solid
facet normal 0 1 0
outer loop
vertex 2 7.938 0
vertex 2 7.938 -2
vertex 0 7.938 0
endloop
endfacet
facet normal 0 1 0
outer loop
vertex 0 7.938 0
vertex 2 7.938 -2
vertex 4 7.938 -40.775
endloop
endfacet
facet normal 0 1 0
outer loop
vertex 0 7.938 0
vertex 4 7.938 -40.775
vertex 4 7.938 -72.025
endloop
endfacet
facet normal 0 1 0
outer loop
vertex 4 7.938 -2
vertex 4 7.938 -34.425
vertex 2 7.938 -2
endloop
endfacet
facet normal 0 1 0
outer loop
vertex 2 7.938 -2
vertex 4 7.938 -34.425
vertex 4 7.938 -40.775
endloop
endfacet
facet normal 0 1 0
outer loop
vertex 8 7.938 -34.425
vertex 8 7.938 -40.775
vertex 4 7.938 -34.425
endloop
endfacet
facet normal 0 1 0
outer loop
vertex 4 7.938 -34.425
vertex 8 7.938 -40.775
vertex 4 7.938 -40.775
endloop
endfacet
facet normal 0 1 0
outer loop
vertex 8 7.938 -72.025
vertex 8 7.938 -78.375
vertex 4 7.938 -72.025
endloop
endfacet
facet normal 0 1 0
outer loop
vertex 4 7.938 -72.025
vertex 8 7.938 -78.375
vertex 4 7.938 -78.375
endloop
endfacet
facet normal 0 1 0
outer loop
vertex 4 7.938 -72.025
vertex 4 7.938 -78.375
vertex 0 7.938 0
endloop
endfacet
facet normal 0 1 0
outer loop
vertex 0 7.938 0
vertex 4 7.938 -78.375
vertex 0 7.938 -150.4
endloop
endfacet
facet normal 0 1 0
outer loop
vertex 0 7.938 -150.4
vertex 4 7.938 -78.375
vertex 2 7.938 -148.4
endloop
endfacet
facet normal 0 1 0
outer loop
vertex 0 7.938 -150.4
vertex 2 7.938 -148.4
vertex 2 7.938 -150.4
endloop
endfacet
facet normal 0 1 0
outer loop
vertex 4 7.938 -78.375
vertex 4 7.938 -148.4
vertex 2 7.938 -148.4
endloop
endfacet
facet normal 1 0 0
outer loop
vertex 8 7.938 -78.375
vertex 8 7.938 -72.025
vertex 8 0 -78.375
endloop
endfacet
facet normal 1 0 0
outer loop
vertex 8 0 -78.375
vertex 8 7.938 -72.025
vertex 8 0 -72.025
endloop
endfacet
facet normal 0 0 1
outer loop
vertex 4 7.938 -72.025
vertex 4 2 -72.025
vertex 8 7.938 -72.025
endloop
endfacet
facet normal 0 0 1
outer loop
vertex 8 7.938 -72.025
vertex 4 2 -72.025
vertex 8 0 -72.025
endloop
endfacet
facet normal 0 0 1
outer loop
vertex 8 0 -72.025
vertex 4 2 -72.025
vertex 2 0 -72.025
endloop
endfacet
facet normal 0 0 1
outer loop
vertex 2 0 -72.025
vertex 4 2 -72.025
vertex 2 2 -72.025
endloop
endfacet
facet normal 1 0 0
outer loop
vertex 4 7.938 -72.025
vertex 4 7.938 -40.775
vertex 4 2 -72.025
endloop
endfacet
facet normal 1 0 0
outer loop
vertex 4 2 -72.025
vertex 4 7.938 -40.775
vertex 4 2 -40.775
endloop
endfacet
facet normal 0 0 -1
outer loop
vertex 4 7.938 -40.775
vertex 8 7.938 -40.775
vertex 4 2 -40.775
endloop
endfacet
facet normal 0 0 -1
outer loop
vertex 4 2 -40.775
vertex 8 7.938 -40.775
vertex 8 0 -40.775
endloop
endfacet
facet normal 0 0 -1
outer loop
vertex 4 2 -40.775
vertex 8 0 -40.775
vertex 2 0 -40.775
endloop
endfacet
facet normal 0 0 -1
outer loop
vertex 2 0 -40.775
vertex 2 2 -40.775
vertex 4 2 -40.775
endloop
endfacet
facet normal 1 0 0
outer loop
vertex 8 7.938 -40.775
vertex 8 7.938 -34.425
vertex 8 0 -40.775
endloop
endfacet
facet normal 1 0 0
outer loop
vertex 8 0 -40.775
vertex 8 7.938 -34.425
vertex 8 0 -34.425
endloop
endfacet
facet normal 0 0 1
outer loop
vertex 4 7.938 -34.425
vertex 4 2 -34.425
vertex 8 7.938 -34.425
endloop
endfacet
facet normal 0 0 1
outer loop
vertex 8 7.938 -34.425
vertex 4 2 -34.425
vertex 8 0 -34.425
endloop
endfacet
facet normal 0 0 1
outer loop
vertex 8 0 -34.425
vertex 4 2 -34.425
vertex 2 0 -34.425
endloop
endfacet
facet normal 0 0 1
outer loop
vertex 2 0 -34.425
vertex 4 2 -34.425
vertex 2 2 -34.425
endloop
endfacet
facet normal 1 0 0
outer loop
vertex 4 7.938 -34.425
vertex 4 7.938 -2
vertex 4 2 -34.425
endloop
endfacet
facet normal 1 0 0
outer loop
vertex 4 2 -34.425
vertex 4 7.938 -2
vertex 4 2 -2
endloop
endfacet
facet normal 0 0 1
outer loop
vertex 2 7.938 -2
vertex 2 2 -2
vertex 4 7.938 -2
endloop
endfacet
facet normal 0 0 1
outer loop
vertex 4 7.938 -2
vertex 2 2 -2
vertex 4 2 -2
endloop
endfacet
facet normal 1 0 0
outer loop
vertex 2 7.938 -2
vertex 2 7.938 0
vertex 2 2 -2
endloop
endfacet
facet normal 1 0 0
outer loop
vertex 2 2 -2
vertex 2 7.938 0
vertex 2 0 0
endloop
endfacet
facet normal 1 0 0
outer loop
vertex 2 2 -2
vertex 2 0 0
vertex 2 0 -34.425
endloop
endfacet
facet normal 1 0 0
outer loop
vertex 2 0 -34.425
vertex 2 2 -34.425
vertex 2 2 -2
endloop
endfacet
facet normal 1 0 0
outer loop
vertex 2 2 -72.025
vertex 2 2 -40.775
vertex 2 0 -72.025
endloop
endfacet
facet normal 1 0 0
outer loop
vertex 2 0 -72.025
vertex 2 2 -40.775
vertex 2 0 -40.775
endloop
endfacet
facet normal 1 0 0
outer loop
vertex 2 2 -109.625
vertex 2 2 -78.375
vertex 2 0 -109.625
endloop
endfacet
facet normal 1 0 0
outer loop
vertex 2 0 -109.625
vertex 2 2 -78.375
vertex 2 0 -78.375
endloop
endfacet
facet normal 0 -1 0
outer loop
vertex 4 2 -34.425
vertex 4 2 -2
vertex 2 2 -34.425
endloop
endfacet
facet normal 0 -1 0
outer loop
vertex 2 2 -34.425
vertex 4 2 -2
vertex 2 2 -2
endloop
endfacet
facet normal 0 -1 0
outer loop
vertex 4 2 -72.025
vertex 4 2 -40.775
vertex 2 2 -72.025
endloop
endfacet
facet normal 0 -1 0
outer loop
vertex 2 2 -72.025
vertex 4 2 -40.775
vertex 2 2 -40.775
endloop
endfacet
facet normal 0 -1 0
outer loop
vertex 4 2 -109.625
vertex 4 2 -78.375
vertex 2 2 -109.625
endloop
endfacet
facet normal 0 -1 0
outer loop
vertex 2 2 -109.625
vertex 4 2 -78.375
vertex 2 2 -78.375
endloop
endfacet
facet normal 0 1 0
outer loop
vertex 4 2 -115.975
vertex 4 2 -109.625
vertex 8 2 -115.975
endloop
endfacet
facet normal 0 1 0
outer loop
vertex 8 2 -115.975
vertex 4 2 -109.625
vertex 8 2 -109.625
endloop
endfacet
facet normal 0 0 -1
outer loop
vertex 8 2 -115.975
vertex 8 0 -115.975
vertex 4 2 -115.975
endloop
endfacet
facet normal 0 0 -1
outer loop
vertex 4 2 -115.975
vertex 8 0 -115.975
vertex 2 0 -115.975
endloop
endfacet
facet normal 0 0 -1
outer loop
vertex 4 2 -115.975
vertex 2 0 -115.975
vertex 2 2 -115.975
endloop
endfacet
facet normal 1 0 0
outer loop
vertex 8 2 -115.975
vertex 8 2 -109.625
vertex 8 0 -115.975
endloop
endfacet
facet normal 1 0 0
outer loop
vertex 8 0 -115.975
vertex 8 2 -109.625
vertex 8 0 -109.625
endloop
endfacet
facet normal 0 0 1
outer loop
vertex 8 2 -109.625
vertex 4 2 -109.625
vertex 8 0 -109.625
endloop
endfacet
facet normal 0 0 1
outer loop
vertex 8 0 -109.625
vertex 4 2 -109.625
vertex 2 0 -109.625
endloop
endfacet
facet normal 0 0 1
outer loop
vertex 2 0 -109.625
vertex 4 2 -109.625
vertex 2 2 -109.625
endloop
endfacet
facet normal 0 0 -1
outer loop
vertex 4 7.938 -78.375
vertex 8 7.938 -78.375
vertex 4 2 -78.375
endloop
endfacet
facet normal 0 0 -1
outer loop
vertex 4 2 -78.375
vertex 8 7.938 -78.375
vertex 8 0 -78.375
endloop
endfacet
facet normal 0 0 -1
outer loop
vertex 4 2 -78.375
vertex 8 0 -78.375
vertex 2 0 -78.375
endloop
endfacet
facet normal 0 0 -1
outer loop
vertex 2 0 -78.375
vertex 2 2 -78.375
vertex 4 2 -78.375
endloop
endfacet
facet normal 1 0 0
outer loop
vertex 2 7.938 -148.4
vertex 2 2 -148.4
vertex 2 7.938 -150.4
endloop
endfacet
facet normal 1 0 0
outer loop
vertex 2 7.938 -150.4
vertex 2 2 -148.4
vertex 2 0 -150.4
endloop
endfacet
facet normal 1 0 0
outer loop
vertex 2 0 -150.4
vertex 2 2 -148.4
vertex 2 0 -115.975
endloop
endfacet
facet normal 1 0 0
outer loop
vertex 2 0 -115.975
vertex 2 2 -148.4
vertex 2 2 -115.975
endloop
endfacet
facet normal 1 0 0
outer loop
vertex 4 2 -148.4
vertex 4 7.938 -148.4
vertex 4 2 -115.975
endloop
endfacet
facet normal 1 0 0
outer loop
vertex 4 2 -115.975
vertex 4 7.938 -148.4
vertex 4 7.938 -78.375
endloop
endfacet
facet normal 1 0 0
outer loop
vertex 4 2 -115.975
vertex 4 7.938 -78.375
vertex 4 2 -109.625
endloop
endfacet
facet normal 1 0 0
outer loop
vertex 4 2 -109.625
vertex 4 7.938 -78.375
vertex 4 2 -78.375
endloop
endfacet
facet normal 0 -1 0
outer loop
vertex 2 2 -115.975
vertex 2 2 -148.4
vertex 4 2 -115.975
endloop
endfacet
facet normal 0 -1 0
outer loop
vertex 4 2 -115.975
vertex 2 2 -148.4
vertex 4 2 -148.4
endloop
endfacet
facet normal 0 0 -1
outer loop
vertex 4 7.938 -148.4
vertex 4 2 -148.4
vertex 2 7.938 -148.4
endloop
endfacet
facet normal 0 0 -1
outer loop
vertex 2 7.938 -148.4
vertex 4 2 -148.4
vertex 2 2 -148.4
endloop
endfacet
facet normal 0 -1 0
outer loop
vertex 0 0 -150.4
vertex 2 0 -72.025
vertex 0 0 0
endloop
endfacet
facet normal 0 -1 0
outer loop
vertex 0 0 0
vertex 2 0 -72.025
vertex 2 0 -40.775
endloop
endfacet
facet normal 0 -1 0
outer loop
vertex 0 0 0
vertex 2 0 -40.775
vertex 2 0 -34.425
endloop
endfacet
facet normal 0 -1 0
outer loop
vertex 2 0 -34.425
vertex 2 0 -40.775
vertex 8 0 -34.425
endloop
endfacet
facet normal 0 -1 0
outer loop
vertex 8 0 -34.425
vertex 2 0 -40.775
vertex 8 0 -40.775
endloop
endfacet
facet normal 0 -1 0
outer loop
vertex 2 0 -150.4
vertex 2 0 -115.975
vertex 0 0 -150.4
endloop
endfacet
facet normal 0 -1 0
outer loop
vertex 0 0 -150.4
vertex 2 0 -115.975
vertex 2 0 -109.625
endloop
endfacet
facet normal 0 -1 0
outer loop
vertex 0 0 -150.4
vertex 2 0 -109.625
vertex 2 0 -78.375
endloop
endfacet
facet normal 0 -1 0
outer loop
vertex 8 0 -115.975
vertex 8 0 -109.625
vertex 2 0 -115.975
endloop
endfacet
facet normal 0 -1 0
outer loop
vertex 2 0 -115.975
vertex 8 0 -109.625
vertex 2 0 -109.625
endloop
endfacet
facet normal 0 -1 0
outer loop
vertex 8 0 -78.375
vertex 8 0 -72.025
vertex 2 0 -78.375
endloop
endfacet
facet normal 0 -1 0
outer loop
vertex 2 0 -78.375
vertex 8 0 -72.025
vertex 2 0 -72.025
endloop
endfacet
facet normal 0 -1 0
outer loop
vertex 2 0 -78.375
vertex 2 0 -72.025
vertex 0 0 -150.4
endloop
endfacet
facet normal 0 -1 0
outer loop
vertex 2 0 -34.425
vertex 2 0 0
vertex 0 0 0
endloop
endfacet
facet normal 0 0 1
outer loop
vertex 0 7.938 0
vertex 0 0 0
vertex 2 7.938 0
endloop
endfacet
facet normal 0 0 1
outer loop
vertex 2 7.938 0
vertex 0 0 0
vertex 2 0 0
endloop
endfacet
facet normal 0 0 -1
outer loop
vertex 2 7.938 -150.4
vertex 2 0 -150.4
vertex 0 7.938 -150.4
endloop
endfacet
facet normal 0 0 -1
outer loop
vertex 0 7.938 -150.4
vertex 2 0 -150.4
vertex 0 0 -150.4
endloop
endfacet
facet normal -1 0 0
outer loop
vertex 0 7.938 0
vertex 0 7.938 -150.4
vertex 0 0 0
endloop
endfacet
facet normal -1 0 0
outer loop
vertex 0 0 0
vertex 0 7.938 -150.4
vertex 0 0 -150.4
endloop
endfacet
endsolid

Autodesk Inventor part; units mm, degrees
ref_plane "YZ Plane" through (0, 0, 0) normal (1, 0, 0) x (0, 1, 0)
ref_plane "XZ Plane" through (0, 0, 0) normal (0, 1, 0) x (-1, 0, 0)
ref_plane "XY Plane" through (0, 0, 0) normal (0, 0, 1) x (1, 0, 0)
sketch "Sketch1" plane through (0, 0, 0) normal (1, 0, 0) x (0, 1, 0)
  line L0 (0, 0) -> (69.85, 0)
  line L1 (69.85, 0) -> (69.85, -150.4)
  line L2 (69.85, -150.4) -> (0, -150.4)
  line L3 (0, -150.4) -> (0, 0)
  dimension "d0" = 69.85
  dimension "d1" = 150.4
extrude "Extrusion1" add sketch "Sketch1" along normal blind 2
sketch "Sketch2" plane through (2, 0, 0) normal (1, 0, 0) x (0, 0, -1)
  line L0 (150.4, 0) -> (150.4, 69.85) projected
  line L1 (150.4, 69.85) -> (0, 69.85) projected
  line L2 (0, 69.85) -> (0, 0) projected
  line L3 (0, 0) -> (150.4, 0) projected
  line L4 (150.4, 69.85) -> (148.4, 69.85)
  line L5 (148.4, 69.85) -> (148.4, 0)
  line L6 (148.4, 0) -> (150.4, 0)
  line L7 (150.4, 0) -> (150.4, 69.85)
  line L8 (0, 69.85) -> (2, 69.85)
  line L9 (2, 69.85) -> (2, 0)
  line L10 (2, 0) -> (0, 0)
  line L11 (0, 0) -> (0, 69.85)
  line L12 (0, 0) -> (150.4, 0)
  line L13 (150.4, 0) -> (150.4, 2)
  line L14 (150.4, 2) -> (0, 2)
  line L15 (0, 2) -> (0, 0)
  point P0 (2, 2)
  point P1 (148.4, 2)
  dimension "d4" = 2
  dimension "d5" = 2
  dimension "d6" = 2
extrude "Extrusion2" add sketch "Sketch2" along normal blind 2 contours L14 L9 L1 L5
sketch "Sketch3" plane through (4, 0, 0) normal (1, 0, 0) x (0, 0, -1)
  line L0 (150.4, 0) -> (150.4, 69.85) projected
  line L1 (0, 0) -> (150.4, 0) projected
  line L2 (0, 69.85) -> (0, 0) projected
  line L3 (150.4, 69.85) -> (0, 69.85) projected
  line L4 (0, 69.85) -> (75.2, 69.85) construction
  line L5 (75.2, 69.85) -> (75.2, 0) construction
  line L6 (75.2, 0) -> (0, 0) construction
  line L7 (0, 0) -> (0, 69.85) construction
  line L8 (0, 0) -> (150.4, 0) construction
  line L9 (0, 0) -> (37.6, 0) construction
  line L10 (37.6, 0) -> (37.6, 69.85) construction
  line L11 (37.6, 69.85) -> (0, 69.85) construction
  line L12 (0, 69.85) -> (0, 0) construction
  line L13 (150.4, 0) -> (150.4, 69.85) construction
  line L14 (75.2, 69.85) -> (150.4, 69.85) construction
  line L15 (150.4, 69.85) -> (150.4, 0) construction
  line L16 (150.4, 0) -> (75.2, 0) construction
  line L17 (75.2, 0) -> (75.2, 69.85) construction
  line L18 (75.2, 0) -> (112.8, 0) construction
  line L19 (112.8, 0) -> (112.8, 69.85) construction
  line L20 (112.8, 69.85) -> (75.2, 69.85) construction
  line L21 (75.2, 69.85) -> (75.2, 0) construction
  line L22 (34.425, 0) -> (34.425, 69.85) construction
  line L23 (34.425, 69.85) -> (40.775, 69.85) construction
  line L24 (40.775, 69.85) -> (40.775, 0) construction
  line L25 (40.775, 0) -> (34.425, 0) construction
  line L26 (34.425, 0) -> (40.775, 69.85) construction
  line L27 (34.425, 69.85) -> (40.775, 0) construction
  line L28 (72.025, 0) -> (72.025, 69.85) construction
  line L29 (72.025, 69.85) -> (78.375, 69.85) construction
  line L30 (78.375, 69.85) -> (78.375, 0) construction
  line L31 (78.375, 0) -> (72.025, 0) construction
  line L32 (72.025, 0) -> (78.375, 69.85) construction
  line L33 (72.025, 69.85) -> (78.375, 0) construction
  line L34 (109.625, 0) -> (109.625, 69.85) construction
  line L35 (109.625, 69.85) -> (115.975, 69.85) construction
  line L36 (115.975, 69.85) -> (115.975, 0) construction
  line L37 (115.975, 0) -> (109.625, 0) construction
  line L38 (109.625, 0) -> (115.975, 69.85) construction
  line L39 (109.625, 69.85) -> (115.975, 0) construction
  line L40 (34.425, 69.85) -> (40.775, 69.85)
  line L41 (40.775, 69.85) -> (40.775, 0)
  line L42 (40.775, 0) -> (34.425, 0)
  line L43 (34.425, 0) -> (34.425, 69.85)
  line L44 (72.025, 0) -> (78.375, 0)
  line L45 (78.375, 0) -> (78.375, 69.85)
  line L46 (78.375, 69.85) -> (72.025, 69.85)
  line L47 (72.025, 69.85) -> (72.025, 0)
  line L48 (109.625, 69.85) -> (115.975, 69.85)
  line L49 (115.975, 69.85) -> (115.975, 0)
  line L50 (115.975, 0) -> (109.625, 0)
  line L51 (109.625, 0) -> (109.625, 69.85)
  point P0 (37.6, 34.925)
  point P1 (75.2, 34.925)
  point P2 (112.8, 34.925)
  dimension "d9" = 6.35
  dimension "d10" = 6.35
  dimension "d11" = 6.35
extrude "Extrusion3" add sketch "Sketch3" along normal blind 4 contours L1 L51 L3 L49 | L1 L47 L3 L45 | L1 L43 L3 L41
sketch "Sketch4" plane through (0, 69.85, 0) normal (0, 1, 0) x (1, 0, 0)
  line L0 (0, 150.4) -> (0, 0) projected
  line L1 (0, 150.4) -> (0, 0) construction
  line L2 (0, 0) -> (2, 0) construction
  line L3 (2, 2) -> (2, 0) construction
  line L4 (2, 2) -> (4, 2) construction
  line L5 (4, 34.425) -> (4, 2) construction
  line L6 (4, 34.425) -> (8, 34.425) construction
  line L7 (8, 40.775) -> (8, 34.425) construction
  line L8 (4, 40.775) -> (8, 40.775) construction
  line L9 (4, 72.025) -> (4, 40.775) construction
  line L10 (4, 72.025) -> (8, 72.025) construction
  line L11 (8, 78.375) -> (8, 72.025) construction
  line L12 (4, 78.375) -> (8, 78.375) construction
  line L13 (4, 109.625) -> (4, 78.375) construction
  line L14 (4, 109.625) -> (8, 109.625) construction
  line L15 (8, 115.975) -> (8, 109.625) construction
  line L16 (4, 115.975) -> (8, 115.975) construction
  line L17 (4, 148.4) -> (4, 115.975) construction
  line L18 (2, 148.4) -> (4, 148.4) construction
  line L19 (2, 150.4) -> (2, 148.4) construction
  line L20 (0, 150.4) -> (2, 150.4) construction
  line L21 (2, 0) -> (0, 0)
  line L22 (0, 0) -> (0, 150.4)
  line L23 (0, 150.4) -> (2, 150.4)
  line L24 (2, 150.4) -> (2, 0)
  line L25 (2, 0) -> (8, 0)
  line L26 (8, 0) -> (8, 150.4)
  line L27 (8, 150.4) -> (2, 150.4)
  line L28 (2, 150.4) -> (2, 0)
extrude "Extrusion4" cut sketch "Sketch4" against normal blind 2 contours L27 L26 L25 L24
sketch "Sketch5" plane through (0, 67.85, 0) normal (0, 1, 0) x (1, 0, 0)
  line L0 (4, 115.975) -> (8, 115.975) projected
  line L1 (4, 148.4) -> (4, 115.975) projected
  line L2 (2, 148.4) -> (4, 148.4) projected
  line L3 (2, 2) -> (2, 148.4) projected
  line L4 (4, 2) -> (2, 2) projected
  line L5 (4, 34.425) -> (4, 2) projected
  line L6 (8, 34.425) -> (4, 34.425) projected
  line L7 (8, 40.775) -> (8, 34.425) projected
  line L8 (4, 40.775) -> (8, 40.775) projected
  line L9 (4, 72.025) -> (4, 40.775) projected
  line L10 (8, 72.025) -> (4, 72.025) projected
  line L11 (8, 78.375) -> (8, 72.025) projected
  line L12 (4, 78.375) -> (8, 78.375) projected
  line L13 (4, 109.625) -> (4, 78.375) projected
  line L14 (8, 109.625) -> (4, 109.625) projected
  line L15 (8, 115.975) -> (8, 109.625) projected
  line L16 (2, 2) -> (4, 2) projected
  line L17 (2, 2) -> (8, 2)
  line L18 (8, 2) -> (8, 148.4)
  line L19 (8, 148.4) -> (2, 148.4)
  line L20 (2, 148.4) -> (2, 2)
  point P0 (0, 0)
  point P1 (4, 2)
extrude "Extrusion5" add sketch "Sketch5" against normal blind 2 contours L1 L19 L18 L0 | L18 L12 L13 L14 | L18 L8 L9 L10 | L5 L6 L18 L17
sketch "Sketch6" plane through (4, 0, 0) normal (1, 0, 0) x (0, 0, -1)
  line L0 (2, 67.85) -> (148.4, 67.85) construction
  line L1 (2, 67.85) -> (2, 65.85) construction
  line L2 (34.425, 65.85) -> (2, 65.85) construction
  line L3 (34.425, 65.85) -> (34.425, 0) construction
  line L4 (34.425, 0) -> (40.775, 0) construction
  line L5 (40.775, 0) -> (40.775, 65.85) construction
  line L6 (72.025, 65.85) -> (40.775, 65.85) construction
  line L7 (72.025, 65.85) -> (72.025, 0) construction
  line L8 (72.025, 0) -> (78.375, 0) construction
  line L9 (78.375, 0) -> (78.375, 65.85) construction
  line L10 (109.625, 65.85) -> (78.375, 65.85) construction
  line L11 (109.625, 65.85) -> (109.625, 0) construction
  line L12 (109.625, 0) -> (115.975, 0) construction
  line L13 (115.975, 0) -> (115.975, 65.85) construction
  line L14 (148.4, 65.85) -> (115.975, 65.85) construction
  line L15 (148.4, 67.85) -> (148.4, 65.85) construction
  line L16 (109.625, 65.85) -> (78.375, 65.85) construction
  line L17 (78.375, 65.85) -> (78.375, 2) construction
  line L18 (78.375, 2) -> (109.625, 2) construction
  line L19 (109.625, 2) -> (109.625, 65.85) construction
  line L20 (148.4, 65.85) -> (115.975, 65.85) construction
  line L21 (115.975, 65.85) -> (115.975, 2) construction
  line L22 (115.975, 2) -> (148.4, 2) construction
  line L23 (148.4, 2) -> (148.4, 65.85) construction
  line L24 (72.025, 65.85) -> (40.775, 65.85) construction
  line L25 (40.775, 65.85) -> (40.775, 2) construction
  line L26 (40.775, 2) -> (72.025, 2) construction
  line L27 (72.025, 2) -> (72.025, 65.85) construction
  line L28 (78.375, 2) -> (78.375, 28.67) construction
  line L29 (94, 28.67) -> (114.32, 28.67)
  line L30 (114.32, 28.67) -> (73.68, 28.67)
  line L31 (73.68, 28.67) -> (67.33, 28.67)
  line L32 (67.33, 28.67) -> (80.03, 28.67)
  line L33 (80.03, 28.67) -> (80.03, 34.67)
  line L34 (80.03, 34.67) -> (67.33, 34.67)
  line L35 (67.33, 34.67) -> (67.33, 28.67)
  line L36 (114.32, 28.67) -> (120.67, 28.67)
  line L37 (120.67, 28.67) -> (107.97, 28.67)
  line L38 (107.97, 28.67) -> (107.97, 34.67)
  line L39 (107.97, 34.67) -> (120.67, 34.67)
  line L40 (120.67, 34.67) -> (120.67, 28.67)
  point P0 (0, 0)
  dimension "d18" = 26.67
  dimension "d31" = 20.32
  dimension "d32" = 40.64
  dimension "d33" = 6.35
  dimension "d34" = 12.7
  dimension "d35" = 6
  dimension "d36" = 6.35
  dimension "d37" = 12.7
  dimension "d38" = 6
extrude "Extrusion6" add sketch "Sketch6" along normal blind 33.02
sketch "Sketch12" plane through (4, 34.67, -67.33) normal (0, 1, 0) x (1, 0, 0)
  line L0 (4, 11.045) -> (0, 11.045) construction
  line L1 (4, 4.695) -> (4, 11.045) construction
  line L2 (0, 4.695) -> (4, 4.695) construction
  line L3 (0, 0) -> (0, 4.695) construction
  line L4 (0, 0) -> (33.02, 0) construction
  line L5 (33.02, 12.7) -> (33.02, 0) construction
  line L6 (0, 12.7) -> (33.02, 12.7) construction
  line L7 (0, 11.045) -> (0, 12.7) construction
  line L8 (4, 48.645) -> (0, 48.645) construction
  line L9 (4, 42.295) -> (4, 48.645) construction
  line L10 (0, 42.295) -> (4, 42.295) construction
  line L11 (0, 40.64) -> (0, 42.295) construction
  line L12 (0, 40.64) -> (33.02, 40.64) construction
  line L13 (33.02, 53.34) -> (33.02, 40.64) construction
  line L14 (0, 53.34) -> (33.02, 53.34) construction
  line L15 (0, 48.645) -> (0, 53.34) construction
  line L16 (4, 4.695) -> (4, -26.555) construction
  line L17 (4, 4.695) -> (33.02, 4.695) construction
  line L18 (33.02, 4.695) -> (33.02, 0) construction
  line L19 (33.02, 0) -> (4, 0) construction
  line L20 (4, 0) -> (4, 4.695) construction
  circle A0 centre (18.51, 6.35) radius 2.25 construction
  line L21 (4, 48.645) -> (33.02, 48.645) construction
  circle A1 centre (18.51, 46.99) radius 2.25 construction
  circle A2 centre (18.51, 6.35) radius 2.25
  circle A3 centre (18.51, 46.99) radius 2.25
  point P0 (-4, -67.33)
  dimension "d39" = 4.5
  dimension "d40" = 4.5
extrude "Extrusion10" cut sketch "Sketch12" against normal blind 5
sketch "Sketch13" plane through (8, 0, 0) normal (1, 0, 0) x (0, 0, -1)
  line L0 (120.67, 28.67) -> (115.975, 28.67) construction
  line L1 (115.975, 28.67) -> (115.975, 2) construction
  line L2 (115.975, 2) -> (148.4, 2) construction
  line L3 (148.4, 2) -> (148.4, 65.85) construction
  line L4 (148.4, 65.85) -> (115.975, 65.85) construction
  line L5 (115.975, 65.85) -> (115.975, 34.67) construction
  line L6 (115.975, 34.67) -> (120.67, 34.67) construction
  line L7 (120.67, 34.67) -> (120.67, 28.67) construction
  line L8 (115.975, 28.67) -> (109.625, 28.67) construction
  line L9 (109.625, 28.67) -> (109.625, 0) construction
  line L10 (109.625, 0) -> (115.975, 0) construction
  line L11 (115.975, 0) -> (115.975, 28.67) construction
  line L12 (78.375, 2) -> (109.625, 2) projected
  line L13 (115.975, 28.67) -> (109.625, 28.67)
  line L14 (109.625, 28.67) -> (109.625, 2)
  line L15 (109.625, 2) -> (115.975, 2)
  line L16 (115.975, 2) -> (115.975, 28.67)
  point P0 (0, 0)
extrude "Extrusion11" cut sketch "Sketch13" against normal up to surface (4 mm away)
sketch "Sketch14" plane through (4, 0, 0) normal (-1, 0, 0) x (0, 0, 1)
  line L0 (-109.625, 2) -> (-115.975, 2) projected
  line L1 (-115.975, 0) -> (-115.975, 2) projected
  line L2 (-109.625, 0) -> (-115.975, 0) projected
  line L3 (-109.625, 2) -> (-109.625, 0) projected
  line L4 (-72.025, 2) -> (-78.375, 2) projected
  line L5 (-78.375, 0) -> (-78.375, 2) projected
  line L6 (-72.025, 0) -> (-78.375, 0) projected
  line L7 (-72.025, 2) -> (-72.025, 0) projected
  line L8 (-34.425, 2) -> (-40.775, 2) projected
  line L9 (-40.775, 0) -> (-40.775, 2) projected
  line L10 (-34.425, 0) -> (-40.775, 0) projected
  line L11 (-34.425, 2) -> (-34.425, 0) projected
  point P0 (0, 0)
extrude "Extrusion12" add sketch "Sketch14" along normal blind 2
sketch "Sketch15" plane through (0, 67.85, 0) normal (0, 1, 0) x (1, 0, 0)
  line L0 (8, 2) -> (8, 148.4) construction
  line L1 (2, 148.4) -> (8, 148.4) construction
  line L2 (2, 2) -> (2, 148.4) construction
  line L3 (8, 2) -> (2, 2) construction
  line L4 (8, 109.625) -> (8, 115.975) construction
  line L5 (8, 148.4) -> (8, 115.975) construction
  line L6 (8, 2) -> (8, 148.4) construction
  line L7 (8, 34.425) -> (8, 2) construction
  line L8 (8, 34.425) -> (8, 40.775) construction
  line L9 (8, 72.025) -> (8, 40.775) construction
  line L10 (8, 72.025) -> (8, 78.375) construction
  line L11 (8, 109.625) -> (8, 78.375) construction
  line L12 (8, 34.425) -> (4, 34.425) construction
  line L13 (8, 34.425) -> (2, 34.425) construction
  line L14 (2, 34.425) -> (2, 40.775) construction
  line L15 (2, 40.775) -> (8, 40.775) construction
  line L16 (8, 40.775) -> (8, 34.425) construction
  line L17 (8, 109.625) -> (2, 109.625) construction
  line L18 (2, 109.625) -> (2, 115.975) construction
  line L19 (2, 115.975) -> (8, 115.975) construction
  line L20 (8, 115.975) -> (8, 109.625) construction
  circle A0 centre (5, 37.6) radius 2.25 construction
  circle A1 centre (5, 37.6) radius 2.25
  circle A2 centre (5, 112.8) radius 2.25
  point P0 (0, 0)
  dimension "d47" = 4.5
  dimension "d48" = 4.5
extrude "Extrusion13" cut sketch "Sketch15" against normal blind 5
sketch "Sketch16" plane through (0, 69.85, 0) normal (0, 1, 0) x (1, 0, 0)
  line L0 (-4.169, 153.0551) -> (39.8929, 153.0551)
  line L1 (39.8929, 153.0551) -> (39.8929, -2.3991)
  line L2 (39.8929, -2.3991) -> (-4.169, -2.3991)
  line L3 (-4.169, -2.3991) -> (-4.169, 153.0551)
  point P0 (0, 0)
extrude "Extrusion14" cut sketch "Sketch16" against normal blind 61.9125
properties part number "leftwall"
